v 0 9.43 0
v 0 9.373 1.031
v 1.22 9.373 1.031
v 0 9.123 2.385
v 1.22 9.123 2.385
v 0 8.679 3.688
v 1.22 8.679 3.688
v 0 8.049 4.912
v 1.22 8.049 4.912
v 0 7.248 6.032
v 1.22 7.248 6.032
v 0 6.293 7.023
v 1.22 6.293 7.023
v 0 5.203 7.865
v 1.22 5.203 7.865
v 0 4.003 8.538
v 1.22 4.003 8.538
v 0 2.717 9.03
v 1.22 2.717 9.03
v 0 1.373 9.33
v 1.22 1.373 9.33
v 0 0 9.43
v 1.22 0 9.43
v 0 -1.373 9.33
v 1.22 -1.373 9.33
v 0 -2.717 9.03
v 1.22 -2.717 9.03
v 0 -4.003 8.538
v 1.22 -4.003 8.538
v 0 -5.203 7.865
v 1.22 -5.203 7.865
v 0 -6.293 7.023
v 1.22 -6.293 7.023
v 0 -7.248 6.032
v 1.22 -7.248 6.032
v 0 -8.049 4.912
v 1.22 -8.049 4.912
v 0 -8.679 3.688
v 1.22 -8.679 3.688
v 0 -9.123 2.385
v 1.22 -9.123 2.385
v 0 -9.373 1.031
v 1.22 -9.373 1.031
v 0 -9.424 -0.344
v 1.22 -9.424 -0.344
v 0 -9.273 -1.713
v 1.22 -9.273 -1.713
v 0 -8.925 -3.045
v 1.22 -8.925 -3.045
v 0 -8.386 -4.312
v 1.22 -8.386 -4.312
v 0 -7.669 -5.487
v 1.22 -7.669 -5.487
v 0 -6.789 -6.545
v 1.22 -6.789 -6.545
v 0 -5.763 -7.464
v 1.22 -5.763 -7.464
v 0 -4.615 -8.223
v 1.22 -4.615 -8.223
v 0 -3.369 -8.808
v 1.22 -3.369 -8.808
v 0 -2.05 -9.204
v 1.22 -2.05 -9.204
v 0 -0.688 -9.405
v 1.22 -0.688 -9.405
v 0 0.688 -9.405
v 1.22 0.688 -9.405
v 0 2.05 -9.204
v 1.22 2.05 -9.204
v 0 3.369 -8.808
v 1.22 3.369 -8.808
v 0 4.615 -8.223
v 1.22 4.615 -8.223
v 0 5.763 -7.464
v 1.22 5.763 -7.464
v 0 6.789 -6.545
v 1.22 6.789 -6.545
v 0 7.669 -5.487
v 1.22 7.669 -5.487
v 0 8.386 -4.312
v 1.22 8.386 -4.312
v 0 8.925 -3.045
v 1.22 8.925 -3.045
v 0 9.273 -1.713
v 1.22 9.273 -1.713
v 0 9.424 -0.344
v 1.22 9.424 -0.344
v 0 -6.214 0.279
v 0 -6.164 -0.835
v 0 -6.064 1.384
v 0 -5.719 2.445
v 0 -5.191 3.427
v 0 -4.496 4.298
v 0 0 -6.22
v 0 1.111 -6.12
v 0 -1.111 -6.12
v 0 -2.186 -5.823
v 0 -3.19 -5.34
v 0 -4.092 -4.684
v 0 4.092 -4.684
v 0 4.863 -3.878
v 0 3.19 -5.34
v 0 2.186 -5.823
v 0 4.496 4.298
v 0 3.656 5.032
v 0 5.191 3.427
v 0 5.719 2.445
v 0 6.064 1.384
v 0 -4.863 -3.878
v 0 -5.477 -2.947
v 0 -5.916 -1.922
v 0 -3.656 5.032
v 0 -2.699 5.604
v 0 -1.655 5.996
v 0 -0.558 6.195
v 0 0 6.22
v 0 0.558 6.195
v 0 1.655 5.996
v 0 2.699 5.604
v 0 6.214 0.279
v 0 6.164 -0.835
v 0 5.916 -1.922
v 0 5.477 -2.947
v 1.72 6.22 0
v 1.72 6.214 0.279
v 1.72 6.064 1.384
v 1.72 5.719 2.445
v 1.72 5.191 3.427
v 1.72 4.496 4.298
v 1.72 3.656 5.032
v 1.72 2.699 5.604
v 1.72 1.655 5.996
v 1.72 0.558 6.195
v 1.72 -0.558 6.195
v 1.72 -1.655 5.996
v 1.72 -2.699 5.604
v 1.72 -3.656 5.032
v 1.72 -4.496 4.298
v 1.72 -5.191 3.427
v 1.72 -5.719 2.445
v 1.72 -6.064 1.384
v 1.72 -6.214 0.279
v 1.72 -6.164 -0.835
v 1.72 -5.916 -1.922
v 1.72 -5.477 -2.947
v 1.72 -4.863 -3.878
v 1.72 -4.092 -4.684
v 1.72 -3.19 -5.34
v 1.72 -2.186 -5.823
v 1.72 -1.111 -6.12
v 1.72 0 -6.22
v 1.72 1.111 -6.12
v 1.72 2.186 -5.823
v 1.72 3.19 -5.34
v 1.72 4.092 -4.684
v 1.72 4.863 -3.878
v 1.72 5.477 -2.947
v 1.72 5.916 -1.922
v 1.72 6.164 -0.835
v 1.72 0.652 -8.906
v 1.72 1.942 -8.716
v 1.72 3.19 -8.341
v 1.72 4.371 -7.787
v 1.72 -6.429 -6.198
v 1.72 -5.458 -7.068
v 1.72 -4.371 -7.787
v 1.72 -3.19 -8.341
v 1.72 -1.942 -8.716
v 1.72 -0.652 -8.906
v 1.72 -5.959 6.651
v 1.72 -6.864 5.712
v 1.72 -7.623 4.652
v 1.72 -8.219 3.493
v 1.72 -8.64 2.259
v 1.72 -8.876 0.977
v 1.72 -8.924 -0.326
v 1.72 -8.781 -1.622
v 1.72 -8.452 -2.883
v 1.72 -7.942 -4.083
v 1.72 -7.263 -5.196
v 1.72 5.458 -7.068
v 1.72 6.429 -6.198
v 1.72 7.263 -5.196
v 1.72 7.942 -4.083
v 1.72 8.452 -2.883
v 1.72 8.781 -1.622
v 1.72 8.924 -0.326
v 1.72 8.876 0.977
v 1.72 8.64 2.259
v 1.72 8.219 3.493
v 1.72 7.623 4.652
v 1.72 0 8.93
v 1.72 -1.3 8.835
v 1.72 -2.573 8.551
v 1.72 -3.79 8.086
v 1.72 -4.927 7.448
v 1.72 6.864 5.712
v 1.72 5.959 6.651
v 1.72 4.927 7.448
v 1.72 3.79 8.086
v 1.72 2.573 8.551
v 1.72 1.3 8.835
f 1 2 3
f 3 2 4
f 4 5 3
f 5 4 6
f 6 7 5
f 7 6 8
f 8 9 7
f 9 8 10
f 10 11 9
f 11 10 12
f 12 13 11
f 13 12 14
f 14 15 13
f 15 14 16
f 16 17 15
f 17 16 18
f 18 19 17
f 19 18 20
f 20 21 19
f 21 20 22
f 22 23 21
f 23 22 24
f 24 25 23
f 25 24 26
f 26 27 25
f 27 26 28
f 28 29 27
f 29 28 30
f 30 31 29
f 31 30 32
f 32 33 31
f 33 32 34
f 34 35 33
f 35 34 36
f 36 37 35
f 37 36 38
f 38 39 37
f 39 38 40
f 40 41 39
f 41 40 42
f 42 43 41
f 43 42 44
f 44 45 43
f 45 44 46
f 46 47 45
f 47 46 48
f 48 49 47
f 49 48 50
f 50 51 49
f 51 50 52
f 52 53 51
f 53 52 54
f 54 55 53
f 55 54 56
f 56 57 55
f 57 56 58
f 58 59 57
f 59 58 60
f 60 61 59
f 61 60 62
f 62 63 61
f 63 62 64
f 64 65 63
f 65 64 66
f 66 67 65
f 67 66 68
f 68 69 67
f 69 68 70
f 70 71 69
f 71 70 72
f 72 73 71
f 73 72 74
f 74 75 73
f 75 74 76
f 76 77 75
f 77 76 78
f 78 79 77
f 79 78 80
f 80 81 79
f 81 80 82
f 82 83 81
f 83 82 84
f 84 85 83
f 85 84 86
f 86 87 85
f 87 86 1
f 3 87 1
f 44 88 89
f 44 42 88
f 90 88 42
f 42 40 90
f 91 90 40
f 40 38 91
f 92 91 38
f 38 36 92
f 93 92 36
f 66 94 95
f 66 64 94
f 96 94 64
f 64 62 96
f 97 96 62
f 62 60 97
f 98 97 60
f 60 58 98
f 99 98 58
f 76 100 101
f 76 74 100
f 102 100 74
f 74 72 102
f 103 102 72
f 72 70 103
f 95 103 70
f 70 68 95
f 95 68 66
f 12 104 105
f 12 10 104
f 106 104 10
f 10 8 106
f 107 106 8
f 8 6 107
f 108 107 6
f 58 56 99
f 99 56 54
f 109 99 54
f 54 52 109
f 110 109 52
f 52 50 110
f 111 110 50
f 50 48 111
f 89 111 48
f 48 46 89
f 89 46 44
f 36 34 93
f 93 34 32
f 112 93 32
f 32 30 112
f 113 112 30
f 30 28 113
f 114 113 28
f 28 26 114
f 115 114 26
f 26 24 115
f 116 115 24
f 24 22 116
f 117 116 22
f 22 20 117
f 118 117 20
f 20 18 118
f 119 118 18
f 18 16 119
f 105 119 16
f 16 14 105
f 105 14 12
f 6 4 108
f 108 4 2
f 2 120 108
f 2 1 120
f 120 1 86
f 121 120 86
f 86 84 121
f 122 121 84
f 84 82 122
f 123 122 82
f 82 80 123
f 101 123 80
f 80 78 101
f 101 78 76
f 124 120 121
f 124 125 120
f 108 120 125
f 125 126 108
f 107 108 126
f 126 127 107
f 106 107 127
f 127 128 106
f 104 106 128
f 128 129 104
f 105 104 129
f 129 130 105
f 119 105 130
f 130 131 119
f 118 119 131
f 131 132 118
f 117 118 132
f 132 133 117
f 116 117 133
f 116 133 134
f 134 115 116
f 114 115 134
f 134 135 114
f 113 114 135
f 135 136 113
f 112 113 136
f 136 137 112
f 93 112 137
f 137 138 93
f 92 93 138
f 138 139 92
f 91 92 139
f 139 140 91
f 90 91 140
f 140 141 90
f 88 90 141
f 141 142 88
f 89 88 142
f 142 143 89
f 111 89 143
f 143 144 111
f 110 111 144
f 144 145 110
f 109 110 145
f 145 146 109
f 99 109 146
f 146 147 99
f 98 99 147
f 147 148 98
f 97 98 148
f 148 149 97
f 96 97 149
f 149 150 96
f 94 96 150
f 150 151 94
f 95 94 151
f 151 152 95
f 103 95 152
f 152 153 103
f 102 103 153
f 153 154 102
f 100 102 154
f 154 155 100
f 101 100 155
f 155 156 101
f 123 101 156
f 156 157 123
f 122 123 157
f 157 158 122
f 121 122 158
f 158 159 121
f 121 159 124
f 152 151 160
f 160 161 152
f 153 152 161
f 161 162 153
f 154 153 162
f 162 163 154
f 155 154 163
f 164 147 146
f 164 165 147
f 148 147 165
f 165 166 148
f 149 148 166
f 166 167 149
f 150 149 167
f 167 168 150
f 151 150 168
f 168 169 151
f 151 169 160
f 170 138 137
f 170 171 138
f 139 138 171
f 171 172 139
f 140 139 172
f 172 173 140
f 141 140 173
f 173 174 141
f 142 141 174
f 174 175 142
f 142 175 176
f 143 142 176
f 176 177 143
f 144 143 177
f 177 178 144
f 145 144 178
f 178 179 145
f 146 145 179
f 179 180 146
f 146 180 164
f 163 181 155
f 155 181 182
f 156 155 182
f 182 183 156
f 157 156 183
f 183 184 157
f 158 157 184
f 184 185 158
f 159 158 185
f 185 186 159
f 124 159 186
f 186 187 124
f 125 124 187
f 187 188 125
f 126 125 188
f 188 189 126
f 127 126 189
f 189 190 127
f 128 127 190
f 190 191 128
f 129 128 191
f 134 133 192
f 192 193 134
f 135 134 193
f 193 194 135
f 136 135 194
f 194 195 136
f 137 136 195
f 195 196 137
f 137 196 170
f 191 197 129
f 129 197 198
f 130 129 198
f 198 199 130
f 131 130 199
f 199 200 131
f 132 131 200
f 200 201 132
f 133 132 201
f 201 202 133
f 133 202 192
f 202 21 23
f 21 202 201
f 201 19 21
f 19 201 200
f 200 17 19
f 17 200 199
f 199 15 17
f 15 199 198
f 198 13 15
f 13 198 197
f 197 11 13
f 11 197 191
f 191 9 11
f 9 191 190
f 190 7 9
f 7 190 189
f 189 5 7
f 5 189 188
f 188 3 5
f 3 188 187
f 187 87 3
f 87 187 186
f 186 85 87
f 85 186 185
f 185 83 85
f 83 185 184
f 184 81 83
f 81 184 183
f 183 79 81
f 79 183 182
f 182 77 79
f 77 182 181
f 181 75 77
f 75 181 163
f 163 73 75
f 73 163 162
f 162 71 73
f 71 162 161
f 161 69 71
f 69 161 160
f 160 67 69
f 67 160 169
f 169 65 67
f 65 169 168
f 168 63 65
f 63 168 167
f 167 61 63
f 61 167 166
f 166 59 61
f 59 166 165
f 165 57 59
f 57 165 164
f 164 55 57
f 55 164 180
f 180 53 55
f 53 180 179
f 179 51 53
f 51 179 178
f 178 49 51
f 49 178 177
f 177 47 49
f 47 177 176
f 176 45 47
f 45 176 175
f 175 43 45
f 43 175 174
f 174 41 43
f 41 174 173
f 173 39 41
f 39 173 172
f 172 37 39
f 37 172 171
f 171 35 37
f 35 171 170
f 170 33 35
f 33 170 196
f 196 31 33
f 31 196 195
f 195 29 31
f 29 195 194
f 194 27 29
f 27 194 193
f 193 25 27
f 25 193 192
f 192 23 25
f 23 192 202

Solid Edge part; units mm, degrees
sketch "Sketch1" plane through (0, 0, 0) normal (1, 0, 0) x (0, 1, 0)
  circle A0 centre (0, 0) radius 9.43
  dimension "D1" = 18.86
extrude "Protrusion1" add sketch "Sketch1" along normal blind 1.72
sketch "Sketch2" plane through (1.72, 0, 0) normal (1, 0, 0) x (0, 1, 0)
  circle A0 centre (0, 0) radius 6.22
  dimension "D1" = 12.44
extrude "Cutout1" cut sketch "Sketch2" against normal through all
chamfer "Chamfer_1" distance 0.5 angle 45 1 edges at (1.72, -9.43, 0)
